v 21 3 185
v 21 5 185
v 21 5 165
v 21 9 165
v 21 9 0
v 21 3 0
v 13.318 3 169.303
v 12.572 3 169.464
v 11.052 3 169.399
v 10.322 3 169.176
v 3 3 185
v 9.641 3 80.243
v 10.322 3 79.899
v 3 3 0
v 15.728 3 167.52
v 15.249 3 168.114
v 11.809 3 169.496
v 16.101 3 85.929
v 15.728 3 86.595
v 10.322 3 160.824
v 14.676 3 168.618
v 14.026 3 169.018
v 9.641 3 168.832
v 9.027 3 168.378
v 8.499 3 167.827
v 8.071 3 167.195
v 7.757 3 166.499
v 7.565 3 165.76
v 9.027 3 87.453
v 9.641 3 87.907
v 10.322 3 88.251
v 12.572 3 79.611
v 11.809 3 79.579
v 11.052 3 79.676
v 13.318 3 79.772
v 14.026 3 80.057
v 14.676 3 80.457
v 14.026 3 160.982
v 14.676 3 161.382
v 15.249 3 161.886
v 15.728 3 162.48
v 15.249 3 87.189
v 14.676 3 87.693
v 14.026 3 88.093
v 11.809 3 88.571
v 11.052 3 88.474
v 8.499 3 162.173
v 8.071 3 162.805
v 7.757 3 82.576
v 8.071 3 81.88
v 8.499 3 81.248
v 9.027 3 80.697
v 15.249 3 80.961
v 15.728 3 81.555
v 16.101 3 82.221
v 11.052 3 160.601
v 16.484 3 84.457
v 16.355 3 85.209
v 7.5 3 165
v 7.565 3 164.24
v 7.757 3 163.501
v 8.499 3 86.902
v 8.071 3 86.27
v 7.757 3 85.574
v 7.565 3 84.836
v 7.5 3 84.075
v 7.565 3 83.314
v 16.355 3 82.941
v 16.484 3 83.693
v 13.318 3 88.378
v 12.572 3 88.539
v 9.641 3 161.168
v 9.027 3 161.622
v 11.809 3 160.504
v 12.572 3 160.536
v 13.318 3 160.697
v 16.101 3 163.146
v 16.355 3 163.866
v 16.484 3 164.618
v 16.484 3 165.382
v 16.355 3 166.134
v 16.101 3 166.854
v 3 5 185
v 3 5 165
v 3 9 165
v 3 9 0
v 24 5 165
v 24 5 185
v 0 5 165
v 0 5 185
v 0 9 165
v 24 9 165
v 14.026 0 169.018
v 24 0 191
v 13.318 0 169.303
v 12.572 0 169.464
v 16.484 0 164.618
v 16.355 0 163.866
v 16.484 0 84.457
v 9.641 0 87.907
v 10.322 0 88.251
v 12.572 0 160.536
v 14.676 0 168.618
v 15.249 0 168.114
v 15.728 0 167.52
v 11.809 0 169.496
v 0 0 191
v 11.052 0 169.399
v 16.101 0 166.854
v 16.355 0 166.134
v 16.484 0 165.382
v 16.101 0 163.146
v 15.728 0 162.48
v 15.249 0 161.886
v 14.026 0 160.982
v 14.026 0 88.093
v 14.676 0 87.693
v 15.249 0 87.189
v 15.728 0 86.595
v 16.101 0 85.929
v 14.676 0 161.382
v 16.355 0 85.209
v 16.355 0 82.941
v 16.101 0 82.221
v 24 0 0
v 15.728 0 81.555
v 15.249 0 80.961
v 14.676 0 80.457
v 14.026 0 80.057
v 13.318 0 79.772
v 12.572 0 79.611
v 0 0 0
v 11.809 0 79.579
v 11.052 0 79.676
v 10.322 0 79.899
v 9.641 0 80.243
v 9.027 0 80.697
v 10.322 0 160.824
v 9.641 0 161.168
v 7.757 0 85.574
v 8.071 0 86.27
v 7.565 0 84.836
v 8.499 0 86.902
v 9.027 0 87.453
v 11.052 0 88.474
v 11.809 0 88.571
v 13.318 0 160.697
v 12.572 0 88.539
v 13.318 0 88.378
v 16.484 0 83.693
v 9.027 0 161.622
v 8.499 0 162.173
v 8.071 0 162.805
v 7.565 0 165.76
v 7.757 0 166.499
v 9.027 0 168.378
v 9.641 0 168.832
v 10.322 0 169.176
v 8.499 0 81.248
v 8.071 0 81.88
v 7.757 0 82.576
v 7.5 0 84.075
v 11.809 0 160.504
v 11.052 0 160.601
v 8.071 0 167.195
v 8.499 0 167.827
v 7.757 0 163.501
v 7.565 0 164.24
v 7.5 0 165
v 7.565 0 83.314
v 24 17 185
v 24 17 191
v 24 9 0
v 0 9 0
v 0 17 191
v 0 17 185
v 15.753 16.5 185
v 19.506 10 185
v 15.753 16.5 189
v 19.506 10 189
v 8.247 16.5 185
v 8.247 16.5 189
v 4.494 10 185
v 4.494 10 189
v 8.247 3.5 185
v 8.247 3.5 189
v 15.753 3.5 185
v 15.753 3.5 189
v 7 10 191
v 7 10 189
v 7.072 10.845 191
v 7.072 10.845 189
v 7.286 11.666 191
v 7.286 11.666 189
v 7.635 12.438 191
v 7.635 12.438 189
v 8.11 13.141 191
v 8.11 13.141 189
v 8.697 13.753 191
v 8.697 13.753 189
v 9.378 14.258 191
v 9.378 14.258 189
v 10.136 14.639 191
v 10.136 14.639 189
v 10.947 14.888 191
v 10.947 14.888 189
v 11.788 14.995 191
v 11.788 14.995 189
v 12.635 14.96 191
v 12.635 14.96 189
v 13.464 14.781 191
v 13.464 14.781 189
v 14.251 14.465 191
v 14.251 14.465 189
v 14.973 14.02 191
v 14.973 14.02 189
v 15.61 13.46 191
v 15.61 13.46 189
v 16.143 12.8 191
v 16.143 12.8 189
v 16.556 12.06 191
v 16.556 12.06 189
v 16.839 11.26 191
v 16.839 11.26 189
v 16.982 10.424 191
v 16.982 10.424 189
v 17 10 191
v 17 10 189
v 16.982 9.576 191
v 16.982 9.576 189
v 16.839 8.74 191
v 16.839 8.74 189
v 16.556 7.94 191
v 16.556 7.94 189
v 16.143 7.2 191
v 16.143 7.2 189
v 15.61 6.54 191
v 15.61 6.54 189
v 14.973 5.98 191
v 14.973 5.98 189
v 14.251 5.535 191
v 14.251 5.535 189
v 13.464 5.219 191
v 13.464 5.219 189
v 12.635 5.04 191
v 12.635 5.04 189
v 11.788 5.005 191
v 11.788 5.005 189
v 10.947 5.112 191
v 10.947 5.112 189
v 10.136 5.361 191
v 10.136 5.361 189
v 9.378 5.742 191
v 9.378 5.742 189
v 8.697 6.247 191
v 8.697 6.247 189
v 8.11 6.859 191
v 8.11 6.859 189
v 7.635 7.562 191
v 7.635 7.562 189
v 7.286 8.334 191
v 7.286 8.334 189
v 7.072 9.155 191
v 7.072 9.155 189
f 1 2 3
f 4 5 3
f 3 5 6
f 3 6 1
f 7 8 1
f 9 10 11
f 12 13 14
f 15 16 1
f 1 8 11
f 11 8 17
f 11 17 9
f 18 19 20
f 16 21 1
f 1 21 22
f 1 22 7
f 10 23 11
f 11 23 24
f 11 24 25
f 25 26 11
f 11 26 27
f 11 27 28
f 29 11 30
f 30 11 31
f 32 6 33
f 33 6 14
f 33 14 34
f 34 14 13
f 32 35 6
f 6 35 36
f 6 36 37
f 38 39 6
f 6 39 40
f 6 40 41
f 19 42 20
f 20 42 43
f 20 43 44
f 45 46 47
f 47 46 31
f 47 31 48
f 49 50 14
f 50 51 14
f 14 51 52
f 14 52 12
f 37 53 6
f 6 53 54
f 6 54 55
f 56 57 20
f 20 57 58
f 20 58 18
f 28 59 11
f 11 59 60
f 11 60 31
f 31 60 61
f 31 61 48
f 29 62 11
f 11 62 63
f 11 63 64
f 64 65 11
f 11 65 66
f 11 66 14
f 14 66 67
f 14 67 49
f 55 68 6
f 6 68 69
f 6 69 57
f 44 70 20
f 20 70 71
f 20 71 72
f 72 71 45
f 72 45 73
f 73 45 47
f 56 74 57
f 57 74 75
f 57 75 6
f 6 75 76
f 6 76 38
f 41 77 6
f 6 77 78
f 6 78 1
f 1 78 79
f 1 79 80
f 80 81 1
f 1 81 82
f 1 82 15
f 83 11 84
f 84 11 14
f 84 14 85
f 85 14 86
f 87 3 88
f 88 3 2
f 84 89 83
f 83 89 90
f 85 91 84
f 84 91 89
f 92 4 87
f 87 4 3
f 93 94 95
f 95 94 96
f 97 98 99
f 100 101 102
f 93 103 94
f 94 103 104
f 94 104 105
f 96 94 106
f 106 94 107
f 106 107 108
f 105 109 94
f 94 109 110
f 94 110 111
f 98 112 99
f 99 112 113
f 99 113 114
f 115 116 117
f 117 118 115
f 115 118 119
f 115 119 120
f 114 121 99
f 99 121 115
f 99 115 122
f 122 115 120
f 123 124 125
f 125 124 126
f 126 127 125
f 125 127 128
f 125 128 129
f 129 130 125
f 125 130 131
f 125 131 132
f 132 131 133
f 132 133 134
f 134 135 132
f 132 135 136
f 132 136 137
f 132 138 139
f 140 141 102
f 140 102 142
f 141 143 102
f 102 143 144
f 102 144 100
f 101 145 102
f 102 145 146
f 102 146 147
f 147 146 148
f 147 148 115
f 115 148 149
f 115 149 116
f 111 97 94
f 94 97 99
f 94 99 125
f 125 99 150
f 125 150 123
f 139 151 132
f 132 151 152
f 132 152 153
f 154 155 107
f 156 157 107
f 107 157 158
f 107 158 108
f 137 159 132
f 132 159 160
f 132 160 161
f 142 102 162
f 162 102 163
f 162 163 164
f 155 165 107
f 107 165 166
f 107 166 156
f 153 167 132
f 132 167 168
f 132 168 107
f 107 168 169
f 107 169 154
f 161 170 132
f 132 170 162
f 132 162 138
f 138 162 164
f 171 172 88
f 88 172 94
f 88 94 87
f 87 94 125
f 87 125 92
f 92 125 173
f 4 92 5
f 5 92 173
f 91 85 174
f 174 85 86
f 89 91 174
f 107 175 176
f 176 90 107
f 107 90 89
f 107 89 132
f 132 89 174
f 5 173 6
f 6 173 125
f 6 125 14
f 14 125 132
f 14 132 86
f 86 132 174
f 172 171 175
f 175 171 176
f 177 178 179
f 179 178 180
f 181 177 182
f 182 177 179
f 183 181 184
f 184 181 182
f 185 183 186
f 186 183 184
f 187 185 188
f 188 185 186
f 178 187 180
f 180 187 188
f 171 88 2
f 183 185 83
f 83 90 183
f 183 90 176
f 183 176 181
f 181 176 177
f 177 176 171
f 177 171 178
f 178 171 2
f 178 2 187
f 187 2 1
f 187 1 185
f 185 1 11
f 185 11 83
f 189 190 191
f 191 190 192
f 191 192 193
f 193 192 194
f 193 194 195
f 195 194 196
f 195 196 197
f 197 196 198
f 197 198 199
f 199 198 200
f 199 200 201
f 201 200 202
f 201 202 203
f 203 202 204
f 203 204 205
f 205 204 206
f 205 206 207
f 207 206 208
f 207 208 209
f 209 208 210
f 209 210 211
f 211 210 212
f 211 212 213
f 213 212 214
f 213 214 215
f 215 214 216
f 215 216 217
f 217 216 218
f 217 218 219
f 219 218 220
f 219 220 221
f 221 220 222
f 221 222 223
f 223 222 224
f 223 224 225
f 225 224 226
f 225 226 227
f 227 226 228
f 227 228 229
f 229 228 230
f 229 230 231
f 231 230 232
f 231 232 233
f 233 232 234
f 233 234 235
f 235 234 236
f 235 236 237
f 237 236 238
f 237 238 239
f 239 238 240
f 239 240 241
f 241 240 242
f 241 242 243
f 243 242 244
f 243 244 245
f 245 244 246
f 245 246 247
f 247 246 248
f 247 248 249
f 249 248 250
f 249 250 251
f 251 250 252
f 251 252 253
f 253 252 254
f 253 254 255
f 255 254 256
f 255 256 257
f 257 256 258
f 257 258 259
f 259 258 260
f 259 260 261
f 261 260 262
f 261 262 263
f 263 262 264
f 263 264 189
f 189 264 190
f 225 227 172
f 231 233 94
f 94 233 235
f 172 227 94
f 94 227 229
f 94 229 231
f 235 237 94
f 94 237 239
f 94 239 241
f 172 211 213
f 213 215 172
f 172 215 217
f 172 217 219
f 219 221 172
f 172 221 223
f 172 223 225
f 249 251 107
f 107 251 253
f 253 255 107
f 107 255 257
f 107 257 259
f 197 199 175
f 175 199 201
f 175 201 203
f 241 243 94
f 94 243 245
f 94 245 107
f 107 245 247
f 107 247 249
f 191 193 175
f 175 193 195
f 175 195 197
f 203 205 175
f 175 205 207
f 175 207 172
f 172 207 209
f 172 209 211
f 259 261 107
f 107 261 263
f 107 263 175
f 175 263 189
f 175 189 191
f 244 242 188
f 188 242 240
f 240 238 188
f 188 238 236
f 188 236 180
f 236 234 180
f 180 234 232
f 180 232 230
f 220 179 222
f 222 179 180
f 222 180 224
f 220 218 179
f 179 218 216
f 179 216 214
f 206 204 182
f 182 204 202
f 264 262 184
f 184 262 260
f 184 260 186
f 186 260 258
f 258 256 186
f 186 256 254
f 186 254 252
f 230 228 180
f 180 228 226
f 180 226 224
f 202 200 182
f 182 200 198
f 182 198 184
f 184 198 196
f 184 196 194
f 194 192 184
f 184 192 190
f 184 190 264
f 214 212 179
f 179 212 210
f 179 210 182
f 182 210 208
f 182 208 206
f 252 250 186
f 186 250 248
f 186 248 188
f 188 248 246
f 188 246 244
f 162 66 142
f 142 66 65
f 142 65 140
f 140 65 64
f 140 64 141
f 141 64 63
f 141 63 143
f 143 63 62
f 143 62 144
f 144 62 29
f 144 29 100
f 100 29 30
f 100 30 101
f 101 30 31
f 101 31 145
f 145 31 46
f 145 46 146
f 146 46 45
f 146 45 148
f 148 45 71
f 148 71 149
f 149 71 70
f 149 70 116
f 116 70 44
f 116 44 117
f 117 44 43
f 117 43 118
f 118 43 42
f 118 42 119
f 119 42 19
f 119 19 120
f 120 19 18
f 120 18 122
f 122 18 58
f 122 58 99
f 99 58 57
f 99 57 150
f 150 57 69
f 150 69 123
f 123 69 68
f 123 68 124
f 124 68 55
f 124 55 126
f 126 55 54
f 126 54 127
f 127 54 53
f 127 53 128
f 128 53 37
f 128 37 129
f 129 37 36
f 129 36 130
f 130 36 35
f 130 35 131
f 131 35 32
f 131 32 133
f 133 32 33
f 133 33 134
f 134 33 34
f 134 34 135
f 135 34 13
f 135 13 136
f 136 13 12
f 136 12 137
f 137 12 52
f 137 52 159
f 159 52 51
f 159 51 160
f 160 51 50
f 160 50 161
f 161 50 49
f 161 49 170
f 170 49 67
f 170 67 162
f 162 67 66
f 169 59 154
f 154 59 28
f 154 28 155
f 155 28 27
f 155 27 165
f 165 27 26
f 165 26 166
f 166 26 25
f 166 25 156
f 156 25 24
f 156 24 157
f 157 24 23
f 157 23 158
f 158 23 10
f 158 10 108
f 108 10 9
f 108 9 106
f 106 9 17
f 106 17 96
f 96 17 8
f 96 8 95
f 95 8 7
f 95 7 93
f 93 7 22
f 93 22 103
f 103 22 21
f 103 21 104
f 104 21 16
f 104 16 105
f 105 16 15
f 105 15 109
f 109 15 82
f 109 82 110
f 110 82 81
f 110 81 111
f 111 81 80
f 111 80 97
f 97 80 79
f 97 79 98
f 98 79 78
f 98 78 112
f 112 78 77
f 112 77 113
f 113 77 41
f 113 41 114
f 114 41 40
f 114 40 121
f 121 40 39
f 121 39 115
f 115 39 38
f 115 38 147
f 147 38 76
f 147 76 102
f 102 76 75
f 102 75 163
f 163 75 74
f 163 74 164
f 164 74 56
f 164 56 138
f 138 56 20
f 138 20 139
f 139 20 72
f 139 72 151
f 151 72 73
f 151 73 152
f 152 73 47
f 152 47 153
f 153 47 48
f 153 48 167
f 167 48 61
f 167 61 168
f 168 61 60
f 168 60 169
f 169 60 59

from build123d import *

# Parameters (mm, degrees)
BOSS_EXTRUDE1_DEPTH = 165
BOSS_EXTRUDE2_DEPTH = 24
BOSS_EXTRUDE3_DEPTH = 4
SKETCH3_3_W         = 24
SKETCH3_3_H         = 17
SKETCH3_3_R         = 5
BOSS_EXTRUDE4_DEPTH = 2
SKETCH4_R           = 4.5
CUT_EXTRUDE1_DEPTH  = 194.010362416


with BuildPart() as part:
    # Sketch1 → Boss-Extrude1 (new body)
    with BuildSketch(Plane.XY):
        Polygon((0, 0), (0, 9), (3, 9), (3, 3), (21, 3), (21, 9), (24, 9), (24, 0), align=None)
    extrude(amount=BOSS_EXTRUDE1_DEPTH)

    # Sketch2 → Boss-Extrude2 (add)
    with BuildSketch(Plane.XY.offset(165)):
        Polygon((0, 0), (24, 0), (24, 5), (21, 5), (21, 3), (3, 3), (3, 5), (0, 5), align=None)
    extrude(amount=BOSS_EXTRUDE2_DEPTH)

    # Sketch3 → Boss-Extrude3 (add)
    with BuildSketch(Plane.XY.offset(189)):
        Polygon((0, 17), (0, 5), (3, 5), (3, 3), (21, 3), (21, 5), (24, 5), (24, 17), align=None)
        Polygon((8.24722325, 16.5), (15.75277675, 16.5), (19.505553499, 10), (15.75277675, 3.5), (8.24722325, 3.5), (4.494446501, 10), align=None, mode=Mode.SUBTRACT)
    extrude(amount=-BOSS_EXTRUDE3_DEPTH)

    # Sketch3<3> → Boss-Extrude4 (add)
    with BuildSketch(Plane.XY.offset(189)):
        with Locations((12, 8.5)):
            Rectangle(SKETCH3_3_W, SKETCH3_3_H)
        with Locations((12, 10)):
            Circle(SKETCH3_3_R, mode=Mode.SUBTRACT)
    extrude(amount=BOSS_EXTRUDE4_DEPTH)

    # Sketch4 → Cut-Extrude1 (cut, through all)
    with BuildSketch(Plane(origin=(0, 3, 0), x_dir=(1, 0, 0), z_dir=(0, 1, 0))):
        with Locations((12, -165)):
            Circle(SKETCH4_R)
        with Locations((12, -84.075)):
            Circle(SKETCH4_R)
    extrude(amount=-CUT_EXTRUDE1_DEPTH, mode=Mode.SUBTRACT)


solid = part.part
